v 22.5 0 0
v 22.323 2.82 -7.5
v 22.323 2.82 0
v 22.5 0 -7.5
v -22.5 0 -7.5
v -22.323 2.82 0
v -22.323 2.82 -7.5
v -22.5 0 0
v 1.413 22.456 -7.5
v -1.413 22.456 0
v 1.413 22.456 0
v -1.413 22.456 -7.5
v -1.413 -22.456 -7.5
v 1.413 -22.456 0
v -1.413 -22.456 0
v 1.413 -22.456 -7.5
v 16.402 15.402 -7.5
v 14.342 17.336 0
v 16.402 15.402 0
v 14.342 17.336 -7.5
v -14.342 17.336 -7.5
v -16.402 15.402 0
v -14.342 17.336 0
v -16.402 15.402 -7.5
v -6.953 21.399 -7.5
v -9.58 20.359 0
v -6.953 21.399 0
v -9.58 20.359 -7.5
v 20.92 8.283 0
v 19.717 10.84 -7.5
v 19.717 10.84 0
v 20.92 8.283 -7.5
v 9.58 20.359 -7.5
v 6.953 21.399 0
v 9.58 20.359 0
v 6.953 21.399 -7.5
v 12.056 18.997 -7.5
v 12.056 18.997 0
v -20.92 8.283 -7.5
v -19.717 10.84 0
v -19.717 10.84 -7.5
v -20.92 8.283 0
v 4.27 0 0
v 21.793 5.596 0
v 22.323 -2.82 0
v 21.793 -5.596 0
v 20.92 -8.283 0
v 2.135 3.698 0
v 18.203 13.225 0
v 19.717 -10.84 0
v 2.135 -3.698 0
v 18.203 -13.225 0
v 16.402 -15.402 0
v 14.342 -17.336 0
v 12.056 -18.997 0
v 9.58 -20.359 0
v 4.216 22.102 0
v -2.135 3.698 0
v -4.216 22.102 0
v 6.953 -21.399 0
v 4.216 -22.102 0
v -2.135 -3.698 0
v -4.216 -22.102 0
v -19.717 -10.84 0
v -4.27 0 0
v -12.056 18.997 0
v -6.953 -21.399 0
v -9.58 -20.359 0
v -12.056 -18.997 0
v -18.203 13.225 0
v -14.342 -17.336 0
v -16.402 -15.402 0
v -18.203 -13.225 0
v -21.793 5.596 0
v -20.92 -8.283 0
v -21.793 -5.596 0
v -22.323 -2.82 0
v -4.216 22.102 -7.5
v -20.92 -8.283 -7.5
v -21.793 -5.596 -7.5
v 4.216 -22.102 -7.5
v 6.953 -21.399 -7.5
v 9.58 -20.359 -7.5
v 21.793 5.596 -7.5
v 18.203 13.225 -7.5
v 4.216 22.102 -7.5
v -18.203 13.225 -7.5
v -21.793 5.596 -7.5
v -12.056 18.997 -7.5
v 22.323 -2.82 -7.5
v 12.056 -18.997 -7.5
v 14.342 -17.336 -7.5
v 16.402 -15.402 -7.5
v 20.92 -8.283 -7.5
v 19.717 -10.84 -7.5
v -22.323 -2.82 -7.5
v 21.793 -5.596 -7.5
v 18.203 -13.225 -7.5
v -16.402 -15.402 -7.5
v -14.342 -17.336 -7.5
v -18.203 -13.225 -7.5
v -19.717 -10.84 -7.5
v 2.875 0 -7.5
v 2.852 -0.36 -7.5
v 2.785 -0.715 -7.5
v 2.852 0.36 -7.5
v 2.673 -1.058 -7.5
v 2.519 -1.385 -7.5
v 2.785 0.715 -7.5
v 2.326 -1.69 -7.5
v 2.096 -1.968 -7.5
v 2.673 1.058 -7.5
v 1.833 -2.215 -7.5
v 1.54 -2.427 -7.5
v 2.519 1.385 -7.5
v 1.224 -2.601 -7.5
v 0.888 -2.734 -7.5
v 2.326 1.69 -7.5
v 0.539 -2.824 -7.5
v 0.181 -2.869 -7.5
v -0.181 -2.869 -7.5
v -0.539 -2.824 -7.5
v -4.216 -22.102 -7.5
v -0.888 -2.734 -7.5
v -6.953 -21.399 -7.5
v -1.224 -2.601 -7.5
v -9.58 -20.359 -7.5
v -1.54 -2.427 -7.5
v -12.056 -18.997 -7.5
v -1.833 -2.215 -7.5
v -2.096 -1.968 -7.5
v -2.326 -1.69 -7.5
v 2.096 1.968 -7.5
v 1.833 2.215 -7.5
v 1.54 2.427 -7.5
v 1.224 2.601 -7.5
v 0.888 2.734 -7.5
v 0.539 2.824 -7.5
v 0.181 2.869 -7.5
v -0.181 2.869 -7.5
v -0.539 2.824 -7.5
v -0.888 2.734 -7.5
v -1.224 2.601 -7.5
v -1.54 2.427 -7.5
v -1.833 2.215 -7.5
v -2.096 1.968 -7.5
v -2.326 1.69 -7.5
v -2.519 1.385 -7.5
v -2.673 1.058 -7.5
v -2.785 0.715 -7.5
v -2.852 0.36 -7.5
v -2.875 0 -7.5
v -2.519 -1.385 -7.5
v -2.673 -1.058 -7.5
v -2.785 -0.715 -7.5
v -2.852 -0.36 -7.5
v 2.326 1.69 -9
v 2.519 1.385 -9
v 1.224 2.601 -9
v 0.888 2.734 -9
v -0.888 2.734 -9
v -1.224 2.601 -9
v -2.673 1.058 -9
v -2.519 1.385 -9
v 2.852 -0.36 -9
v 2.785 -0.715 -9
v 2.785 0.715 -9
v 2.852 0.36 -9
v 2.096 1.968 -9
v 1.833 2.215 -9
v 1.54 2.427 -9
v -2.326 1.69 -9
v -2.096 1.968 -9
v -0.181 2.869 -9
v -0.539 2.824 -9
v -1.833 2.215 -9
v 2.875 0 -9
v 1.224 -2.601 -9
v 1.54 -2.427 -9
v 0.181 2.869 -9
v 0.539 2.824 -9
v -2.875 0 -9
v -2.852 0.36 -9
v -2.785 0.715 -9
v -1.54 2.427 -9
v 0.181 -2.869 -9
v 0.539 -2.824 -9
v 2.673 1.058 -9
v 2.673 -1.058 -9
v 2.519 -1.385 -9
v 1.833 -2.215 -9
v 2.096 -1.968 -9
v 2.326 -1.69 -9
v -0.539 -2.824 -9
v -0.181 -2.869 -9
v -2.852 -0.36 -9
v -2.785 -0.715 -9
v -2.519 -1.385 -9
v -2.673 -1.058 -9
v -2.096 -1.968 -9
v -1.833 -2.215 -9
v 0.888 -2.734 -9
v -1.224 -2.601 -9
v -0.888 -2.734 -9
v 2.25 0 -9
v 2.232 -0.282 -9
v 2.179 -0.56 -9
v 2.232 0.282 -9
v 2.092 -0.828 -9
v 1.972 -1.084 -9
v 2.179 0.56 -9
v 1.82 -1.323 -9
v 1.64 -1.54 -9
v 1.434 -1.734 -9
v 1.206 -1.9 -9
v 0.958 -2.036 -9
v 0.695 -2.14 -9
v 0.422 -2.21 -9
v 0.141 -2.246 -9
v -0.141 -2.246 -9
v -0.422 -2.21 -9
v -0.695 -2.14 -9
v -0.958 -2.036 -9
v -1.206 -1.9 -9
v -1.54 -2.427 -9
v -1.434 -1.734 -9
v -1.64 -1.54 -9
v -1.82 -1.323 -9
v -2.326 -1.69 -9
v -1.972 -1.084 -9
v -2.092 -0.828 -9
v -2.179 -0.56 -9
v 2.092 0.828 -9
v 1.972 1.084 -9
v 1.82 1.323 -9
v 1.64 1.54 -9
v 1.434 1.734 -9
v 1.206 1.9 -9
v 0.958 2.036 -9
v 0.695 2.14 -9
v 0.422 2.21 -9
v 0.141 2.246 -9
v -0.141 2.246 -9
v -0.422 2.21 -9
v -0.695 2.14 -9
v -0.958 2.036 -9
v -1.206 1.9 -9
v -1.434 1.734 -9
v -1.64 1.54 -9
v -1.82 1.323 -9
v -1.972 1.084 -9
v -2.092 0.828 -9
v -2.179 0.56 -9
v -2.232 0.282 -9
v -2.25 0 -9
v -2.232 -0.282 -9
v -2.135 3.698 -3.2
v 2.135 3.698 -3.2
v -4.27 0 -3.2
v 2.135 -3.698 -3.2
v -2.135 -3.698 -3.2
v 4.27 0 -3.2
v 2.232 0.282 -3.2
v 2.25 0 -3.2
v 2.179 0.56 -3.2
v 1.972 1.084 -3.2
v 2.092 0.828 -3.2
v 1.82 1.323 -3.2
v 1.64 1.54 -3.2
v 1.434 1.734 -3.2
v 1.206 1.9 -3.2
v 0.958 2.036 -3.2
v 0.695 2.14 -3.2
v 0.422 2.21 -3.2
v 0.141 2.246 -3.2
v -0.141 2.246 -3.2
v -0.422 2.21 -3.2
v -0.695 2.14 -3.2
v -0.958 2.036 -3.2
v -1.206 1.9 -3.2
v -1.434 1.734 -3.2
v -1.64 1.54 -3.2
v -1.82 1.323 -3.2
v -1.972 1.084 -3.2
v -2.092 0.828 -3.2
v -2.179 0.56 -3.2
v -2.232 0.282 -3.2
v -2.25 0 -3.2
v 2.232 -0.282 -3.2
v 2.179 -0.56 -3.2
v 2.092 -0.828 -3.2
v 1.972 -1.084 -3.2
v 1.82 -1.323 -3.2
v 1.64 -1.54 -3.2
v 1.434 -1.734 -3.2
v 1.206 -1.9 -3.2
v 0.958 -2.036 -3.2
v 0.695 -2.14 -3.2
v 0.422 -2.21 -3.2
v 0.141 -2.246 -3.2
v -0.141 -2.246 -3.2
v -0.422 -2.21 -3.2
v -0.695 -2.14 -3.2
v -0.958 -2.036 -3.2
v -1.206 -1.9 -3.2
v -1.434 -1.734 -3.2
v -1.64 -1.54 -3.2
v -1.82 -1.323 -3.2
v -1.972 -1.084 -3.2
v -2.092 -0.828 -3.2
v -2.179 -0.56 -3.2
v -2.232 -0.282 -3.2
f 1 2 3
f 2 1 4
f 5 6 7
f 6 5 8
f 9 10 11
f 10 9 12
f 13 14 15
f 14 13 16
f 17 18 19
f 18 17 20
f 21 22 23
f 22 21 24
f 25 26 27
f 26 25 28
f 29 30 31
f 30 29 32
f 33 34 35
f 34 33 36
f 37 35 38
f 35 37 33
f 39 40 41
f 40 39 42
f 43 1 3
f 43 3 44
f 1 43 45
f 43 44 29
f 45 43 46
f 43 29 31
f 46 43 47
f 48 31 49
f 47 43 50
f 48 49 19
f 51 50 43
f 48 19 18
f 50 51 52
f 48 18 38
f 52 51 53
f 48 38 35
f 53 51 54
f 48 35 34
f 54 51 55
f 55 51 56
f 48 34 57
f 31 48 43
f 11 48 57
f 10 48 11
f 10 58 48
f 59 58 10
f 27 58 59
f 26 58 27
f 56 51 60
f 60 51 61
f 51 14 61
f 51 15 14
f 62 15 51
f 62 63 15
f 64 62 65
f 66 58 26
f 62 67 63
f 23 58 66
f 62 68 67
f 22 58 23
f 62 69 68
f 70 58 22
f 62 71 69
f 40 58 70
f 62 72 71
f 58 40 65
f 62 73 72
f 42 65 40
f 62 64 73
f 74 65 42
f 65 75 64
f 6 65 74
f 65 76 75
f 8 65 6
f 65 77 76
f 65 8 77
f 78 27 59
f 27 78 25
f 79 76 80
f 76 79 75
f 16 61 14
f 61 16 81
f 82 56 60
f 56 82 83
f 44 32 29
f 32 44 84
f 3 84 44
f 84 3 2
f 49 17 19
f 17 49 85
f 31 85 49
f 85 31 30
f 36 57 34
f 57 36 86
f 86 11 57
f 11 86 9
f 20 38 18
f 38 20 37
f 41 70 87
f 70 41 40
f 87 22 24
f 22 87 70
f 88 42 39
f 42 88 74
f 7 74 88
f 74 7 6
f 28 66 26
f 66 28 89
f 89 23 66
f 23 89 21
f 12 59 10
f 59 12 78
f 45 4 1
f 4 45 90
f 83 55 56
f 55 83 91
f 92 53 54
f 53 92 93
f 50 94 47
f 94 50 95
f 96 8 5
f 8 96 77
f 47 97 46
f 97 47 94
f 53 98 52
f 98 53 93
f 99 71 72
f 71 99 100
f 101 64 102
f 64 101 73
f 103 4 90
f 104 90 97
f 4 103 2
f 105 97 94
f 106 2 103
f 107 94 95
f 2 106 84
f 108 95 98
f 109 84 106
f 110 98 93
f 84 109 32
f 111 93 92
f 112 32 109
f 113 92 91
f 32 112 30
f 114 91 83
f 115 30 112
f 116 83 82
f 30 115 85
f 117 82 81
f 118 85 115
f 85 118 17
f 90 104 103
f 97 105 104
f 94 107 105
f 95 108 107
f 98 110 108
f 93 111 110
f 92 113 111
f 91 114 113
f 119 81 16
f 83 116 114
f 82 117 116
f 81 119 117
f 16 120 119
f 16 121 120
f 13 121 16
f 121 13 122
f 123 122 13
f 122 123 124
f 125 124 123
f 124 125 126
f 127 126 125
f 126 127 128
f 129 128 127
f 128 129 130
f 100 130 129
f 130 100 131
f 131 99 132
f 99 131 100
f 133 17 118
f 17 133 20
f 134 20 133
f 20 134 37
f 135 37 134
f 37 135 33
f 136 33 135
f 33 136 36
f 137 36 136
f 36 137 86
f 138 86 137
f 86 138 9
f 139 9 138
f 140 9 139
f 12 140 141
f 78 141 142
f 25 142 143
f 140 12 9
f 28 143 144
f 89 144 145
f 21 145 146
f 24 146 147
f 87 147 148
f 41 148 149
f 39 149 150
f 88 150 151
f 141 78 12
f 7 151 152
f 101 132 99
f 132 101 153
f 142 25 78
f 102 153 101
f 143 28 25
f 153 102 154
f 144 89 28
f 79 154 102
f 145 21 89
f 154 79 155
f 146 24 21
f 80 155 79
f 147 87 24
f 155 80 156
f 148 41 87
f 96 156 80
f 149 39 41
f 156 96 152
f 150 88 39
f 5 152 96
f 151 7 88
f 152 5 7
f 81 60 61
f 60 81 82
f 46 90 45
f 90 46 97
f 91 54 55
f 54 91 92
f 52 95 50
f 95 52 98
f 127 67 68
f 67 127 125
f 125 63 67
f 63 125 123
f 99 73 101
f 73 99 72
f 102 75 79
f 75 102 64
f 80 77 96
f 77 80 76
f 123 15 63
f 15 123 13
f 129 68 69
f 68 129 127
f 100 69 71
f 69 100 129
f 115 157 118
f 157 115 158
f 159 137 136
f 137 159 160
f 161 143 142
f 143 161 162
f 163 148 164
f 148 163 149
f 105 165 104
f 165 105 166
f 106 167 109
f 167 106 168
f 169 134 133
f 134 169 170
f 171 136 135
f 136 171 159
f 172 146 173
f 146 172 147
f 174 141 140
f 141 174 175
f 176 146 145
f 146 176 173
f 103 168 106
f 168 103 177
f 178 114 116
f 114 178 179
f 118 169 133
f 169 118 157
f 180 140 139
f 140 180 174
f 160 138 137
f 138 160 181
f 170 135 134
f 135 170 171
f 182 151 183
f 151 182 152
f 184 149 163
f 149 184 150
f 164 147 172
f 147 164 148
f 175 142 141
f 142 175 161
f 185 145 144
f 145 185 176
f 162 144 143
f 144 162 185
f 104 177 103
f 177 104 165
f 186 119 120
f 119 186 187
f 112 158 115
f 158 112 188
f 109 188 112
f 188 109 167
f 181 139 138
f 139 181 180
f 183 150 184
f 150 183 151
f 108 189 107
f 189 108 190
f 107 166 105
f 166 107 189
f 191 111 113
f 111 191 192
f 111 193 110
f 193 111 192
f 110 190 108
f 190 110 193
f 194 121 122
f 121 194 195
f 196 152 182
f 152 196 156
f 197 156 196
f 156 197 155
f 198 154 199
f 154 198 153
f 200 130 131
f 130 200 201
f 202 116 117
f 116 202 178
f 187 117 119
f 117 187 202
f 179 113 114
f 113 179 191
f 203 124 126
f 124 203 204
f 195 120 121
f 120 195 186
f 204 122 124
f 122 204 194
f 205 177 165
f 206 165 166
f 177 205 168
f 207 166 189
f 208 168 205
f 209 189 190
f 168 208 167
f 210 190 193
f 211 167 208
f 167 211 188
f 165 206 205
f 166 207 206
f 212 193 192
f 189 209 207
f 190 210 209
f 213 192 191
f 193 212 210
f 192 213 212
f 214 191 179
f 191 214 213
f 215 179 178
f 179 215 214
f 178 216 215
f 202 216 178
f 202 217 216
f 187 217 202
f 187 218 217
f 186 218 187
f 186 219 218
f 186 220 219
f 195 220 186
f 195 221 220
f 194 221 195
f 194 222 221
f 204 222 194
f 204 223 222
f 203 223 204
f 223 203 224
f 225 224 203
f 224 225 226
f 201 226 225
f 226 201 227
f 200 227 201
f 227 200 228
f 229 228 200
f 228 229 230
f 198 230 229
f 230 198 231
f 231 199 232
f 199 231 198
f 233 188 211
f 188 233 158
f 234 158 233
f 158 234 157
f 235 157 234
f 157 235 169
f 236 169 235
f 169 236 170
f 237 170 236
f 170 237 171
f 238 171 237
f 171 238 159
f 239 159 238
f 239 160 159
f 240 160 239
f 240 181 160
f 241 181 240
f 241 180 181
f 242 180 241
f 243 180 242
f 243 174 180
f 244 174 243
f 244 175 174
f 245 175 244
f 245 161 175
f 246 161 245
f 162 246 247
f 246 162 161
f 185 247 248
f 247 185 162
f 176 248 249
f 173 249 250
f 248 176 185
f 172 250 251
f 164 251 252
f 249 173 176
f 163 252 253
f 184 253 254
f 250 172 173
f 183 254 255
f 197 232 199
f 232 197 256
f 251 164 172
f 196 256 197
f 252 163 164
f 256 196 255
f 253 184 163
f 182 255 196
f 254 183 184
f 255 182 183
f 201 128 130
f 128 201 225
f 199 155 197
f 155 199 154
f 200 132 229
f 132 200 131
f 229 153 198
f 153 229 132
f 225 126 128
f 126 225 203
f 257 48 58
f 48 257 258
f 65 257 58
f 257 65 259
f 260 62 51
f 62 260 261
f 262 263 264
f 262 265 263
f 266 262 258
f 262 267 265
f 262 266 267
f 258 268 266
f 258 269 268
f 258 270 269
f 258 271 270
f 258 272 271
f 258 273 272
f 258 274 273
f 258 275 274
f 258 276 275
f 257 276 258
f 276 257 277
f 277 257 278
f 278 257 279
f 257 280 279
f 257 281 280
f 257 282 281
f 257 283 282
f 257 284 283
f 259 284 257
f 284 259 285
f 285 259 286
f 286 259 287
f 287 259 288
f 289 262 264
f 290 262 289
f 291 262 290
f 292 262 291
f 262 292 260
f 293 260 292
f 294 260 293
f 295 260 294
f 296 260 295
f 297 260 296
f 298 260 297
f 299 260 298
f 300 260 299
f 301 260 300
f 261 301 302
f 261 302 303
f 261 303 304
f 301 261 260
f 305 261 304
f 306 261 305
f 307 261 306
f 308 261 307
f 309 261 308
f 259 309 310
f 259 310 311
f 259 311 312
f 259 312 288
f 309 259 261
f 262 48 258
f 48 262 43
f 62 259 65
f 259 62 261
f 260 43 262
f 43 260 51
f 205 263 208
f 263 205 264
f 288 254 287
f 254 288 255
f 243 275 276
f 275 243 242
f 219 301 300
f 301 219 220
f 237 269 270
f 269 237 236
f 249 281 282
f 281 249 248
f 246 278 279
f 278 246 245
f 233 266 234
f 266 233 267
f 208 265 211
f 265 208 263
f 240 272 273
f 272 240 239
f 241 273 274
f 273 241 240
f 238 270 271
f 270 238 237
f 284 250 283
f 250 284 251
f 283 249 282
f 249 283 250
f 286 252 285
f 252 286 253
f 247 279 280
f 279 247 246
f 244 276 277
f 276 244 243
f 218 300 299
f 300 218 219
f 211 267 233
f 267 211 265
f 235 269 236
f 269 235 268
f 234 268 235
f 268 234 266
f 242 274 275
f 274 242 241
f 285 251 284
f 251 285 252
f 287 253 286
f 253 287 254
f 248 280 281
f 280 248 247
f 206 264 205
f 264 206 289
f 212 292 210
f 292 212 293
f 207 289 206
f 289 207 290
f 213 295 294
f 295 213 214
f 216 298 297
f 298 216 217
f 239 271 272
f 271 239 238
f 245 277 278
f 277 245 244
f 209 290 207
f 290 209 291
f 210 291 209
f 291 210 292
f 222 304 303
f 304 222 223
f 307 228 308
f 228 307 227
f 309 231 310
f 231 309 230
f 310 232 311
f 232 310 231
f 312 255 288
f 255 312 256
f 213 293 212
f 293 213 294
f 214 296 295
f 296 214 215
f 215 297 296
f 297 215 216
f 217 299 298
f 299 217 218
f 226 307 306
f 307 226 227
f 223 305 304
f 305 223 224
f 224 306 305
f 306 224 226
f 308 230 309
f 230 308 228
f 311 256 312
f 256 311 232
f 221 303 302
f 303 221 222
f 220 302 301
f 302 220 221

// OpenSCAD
$fn = 50;


difference() {
	union() {
		translate(v = [0, 0, -7.5000000000]) {
			cylinder(h = 7.5000000000, r = 22.5000000000);
		}
		translate(v = [0, 0, -9.0000000000]) {
			cylinder(h = 9, r = 2.8750000000);
		}
	}
	union() {
		translate(v = [0, 0, 0]) {
			rotate(a = [0, 0, 0]) {
				difference() {
					union() {
						translate(v = [0, 0, -3.2000000000]) {
							linear_extrude(height = 3.2000000000) {
								polygon(points = [[4.2698000000, 0.0000000000], [2.1349000000, 3.6977552691], [-2.1349000000, 3.6977552691], [-4.2698000000, 0.0000000000], [-2.1349000000, -3.6977552691], [2.1349000000, -3.6977552691]]);
							}
						}
					}
					union();
				}
			}
		}
		#translate(v = [0, 0, -100.0000000000]) {
			cylinder(h = 200, r = 2.2500000000);
		}
	}
}
